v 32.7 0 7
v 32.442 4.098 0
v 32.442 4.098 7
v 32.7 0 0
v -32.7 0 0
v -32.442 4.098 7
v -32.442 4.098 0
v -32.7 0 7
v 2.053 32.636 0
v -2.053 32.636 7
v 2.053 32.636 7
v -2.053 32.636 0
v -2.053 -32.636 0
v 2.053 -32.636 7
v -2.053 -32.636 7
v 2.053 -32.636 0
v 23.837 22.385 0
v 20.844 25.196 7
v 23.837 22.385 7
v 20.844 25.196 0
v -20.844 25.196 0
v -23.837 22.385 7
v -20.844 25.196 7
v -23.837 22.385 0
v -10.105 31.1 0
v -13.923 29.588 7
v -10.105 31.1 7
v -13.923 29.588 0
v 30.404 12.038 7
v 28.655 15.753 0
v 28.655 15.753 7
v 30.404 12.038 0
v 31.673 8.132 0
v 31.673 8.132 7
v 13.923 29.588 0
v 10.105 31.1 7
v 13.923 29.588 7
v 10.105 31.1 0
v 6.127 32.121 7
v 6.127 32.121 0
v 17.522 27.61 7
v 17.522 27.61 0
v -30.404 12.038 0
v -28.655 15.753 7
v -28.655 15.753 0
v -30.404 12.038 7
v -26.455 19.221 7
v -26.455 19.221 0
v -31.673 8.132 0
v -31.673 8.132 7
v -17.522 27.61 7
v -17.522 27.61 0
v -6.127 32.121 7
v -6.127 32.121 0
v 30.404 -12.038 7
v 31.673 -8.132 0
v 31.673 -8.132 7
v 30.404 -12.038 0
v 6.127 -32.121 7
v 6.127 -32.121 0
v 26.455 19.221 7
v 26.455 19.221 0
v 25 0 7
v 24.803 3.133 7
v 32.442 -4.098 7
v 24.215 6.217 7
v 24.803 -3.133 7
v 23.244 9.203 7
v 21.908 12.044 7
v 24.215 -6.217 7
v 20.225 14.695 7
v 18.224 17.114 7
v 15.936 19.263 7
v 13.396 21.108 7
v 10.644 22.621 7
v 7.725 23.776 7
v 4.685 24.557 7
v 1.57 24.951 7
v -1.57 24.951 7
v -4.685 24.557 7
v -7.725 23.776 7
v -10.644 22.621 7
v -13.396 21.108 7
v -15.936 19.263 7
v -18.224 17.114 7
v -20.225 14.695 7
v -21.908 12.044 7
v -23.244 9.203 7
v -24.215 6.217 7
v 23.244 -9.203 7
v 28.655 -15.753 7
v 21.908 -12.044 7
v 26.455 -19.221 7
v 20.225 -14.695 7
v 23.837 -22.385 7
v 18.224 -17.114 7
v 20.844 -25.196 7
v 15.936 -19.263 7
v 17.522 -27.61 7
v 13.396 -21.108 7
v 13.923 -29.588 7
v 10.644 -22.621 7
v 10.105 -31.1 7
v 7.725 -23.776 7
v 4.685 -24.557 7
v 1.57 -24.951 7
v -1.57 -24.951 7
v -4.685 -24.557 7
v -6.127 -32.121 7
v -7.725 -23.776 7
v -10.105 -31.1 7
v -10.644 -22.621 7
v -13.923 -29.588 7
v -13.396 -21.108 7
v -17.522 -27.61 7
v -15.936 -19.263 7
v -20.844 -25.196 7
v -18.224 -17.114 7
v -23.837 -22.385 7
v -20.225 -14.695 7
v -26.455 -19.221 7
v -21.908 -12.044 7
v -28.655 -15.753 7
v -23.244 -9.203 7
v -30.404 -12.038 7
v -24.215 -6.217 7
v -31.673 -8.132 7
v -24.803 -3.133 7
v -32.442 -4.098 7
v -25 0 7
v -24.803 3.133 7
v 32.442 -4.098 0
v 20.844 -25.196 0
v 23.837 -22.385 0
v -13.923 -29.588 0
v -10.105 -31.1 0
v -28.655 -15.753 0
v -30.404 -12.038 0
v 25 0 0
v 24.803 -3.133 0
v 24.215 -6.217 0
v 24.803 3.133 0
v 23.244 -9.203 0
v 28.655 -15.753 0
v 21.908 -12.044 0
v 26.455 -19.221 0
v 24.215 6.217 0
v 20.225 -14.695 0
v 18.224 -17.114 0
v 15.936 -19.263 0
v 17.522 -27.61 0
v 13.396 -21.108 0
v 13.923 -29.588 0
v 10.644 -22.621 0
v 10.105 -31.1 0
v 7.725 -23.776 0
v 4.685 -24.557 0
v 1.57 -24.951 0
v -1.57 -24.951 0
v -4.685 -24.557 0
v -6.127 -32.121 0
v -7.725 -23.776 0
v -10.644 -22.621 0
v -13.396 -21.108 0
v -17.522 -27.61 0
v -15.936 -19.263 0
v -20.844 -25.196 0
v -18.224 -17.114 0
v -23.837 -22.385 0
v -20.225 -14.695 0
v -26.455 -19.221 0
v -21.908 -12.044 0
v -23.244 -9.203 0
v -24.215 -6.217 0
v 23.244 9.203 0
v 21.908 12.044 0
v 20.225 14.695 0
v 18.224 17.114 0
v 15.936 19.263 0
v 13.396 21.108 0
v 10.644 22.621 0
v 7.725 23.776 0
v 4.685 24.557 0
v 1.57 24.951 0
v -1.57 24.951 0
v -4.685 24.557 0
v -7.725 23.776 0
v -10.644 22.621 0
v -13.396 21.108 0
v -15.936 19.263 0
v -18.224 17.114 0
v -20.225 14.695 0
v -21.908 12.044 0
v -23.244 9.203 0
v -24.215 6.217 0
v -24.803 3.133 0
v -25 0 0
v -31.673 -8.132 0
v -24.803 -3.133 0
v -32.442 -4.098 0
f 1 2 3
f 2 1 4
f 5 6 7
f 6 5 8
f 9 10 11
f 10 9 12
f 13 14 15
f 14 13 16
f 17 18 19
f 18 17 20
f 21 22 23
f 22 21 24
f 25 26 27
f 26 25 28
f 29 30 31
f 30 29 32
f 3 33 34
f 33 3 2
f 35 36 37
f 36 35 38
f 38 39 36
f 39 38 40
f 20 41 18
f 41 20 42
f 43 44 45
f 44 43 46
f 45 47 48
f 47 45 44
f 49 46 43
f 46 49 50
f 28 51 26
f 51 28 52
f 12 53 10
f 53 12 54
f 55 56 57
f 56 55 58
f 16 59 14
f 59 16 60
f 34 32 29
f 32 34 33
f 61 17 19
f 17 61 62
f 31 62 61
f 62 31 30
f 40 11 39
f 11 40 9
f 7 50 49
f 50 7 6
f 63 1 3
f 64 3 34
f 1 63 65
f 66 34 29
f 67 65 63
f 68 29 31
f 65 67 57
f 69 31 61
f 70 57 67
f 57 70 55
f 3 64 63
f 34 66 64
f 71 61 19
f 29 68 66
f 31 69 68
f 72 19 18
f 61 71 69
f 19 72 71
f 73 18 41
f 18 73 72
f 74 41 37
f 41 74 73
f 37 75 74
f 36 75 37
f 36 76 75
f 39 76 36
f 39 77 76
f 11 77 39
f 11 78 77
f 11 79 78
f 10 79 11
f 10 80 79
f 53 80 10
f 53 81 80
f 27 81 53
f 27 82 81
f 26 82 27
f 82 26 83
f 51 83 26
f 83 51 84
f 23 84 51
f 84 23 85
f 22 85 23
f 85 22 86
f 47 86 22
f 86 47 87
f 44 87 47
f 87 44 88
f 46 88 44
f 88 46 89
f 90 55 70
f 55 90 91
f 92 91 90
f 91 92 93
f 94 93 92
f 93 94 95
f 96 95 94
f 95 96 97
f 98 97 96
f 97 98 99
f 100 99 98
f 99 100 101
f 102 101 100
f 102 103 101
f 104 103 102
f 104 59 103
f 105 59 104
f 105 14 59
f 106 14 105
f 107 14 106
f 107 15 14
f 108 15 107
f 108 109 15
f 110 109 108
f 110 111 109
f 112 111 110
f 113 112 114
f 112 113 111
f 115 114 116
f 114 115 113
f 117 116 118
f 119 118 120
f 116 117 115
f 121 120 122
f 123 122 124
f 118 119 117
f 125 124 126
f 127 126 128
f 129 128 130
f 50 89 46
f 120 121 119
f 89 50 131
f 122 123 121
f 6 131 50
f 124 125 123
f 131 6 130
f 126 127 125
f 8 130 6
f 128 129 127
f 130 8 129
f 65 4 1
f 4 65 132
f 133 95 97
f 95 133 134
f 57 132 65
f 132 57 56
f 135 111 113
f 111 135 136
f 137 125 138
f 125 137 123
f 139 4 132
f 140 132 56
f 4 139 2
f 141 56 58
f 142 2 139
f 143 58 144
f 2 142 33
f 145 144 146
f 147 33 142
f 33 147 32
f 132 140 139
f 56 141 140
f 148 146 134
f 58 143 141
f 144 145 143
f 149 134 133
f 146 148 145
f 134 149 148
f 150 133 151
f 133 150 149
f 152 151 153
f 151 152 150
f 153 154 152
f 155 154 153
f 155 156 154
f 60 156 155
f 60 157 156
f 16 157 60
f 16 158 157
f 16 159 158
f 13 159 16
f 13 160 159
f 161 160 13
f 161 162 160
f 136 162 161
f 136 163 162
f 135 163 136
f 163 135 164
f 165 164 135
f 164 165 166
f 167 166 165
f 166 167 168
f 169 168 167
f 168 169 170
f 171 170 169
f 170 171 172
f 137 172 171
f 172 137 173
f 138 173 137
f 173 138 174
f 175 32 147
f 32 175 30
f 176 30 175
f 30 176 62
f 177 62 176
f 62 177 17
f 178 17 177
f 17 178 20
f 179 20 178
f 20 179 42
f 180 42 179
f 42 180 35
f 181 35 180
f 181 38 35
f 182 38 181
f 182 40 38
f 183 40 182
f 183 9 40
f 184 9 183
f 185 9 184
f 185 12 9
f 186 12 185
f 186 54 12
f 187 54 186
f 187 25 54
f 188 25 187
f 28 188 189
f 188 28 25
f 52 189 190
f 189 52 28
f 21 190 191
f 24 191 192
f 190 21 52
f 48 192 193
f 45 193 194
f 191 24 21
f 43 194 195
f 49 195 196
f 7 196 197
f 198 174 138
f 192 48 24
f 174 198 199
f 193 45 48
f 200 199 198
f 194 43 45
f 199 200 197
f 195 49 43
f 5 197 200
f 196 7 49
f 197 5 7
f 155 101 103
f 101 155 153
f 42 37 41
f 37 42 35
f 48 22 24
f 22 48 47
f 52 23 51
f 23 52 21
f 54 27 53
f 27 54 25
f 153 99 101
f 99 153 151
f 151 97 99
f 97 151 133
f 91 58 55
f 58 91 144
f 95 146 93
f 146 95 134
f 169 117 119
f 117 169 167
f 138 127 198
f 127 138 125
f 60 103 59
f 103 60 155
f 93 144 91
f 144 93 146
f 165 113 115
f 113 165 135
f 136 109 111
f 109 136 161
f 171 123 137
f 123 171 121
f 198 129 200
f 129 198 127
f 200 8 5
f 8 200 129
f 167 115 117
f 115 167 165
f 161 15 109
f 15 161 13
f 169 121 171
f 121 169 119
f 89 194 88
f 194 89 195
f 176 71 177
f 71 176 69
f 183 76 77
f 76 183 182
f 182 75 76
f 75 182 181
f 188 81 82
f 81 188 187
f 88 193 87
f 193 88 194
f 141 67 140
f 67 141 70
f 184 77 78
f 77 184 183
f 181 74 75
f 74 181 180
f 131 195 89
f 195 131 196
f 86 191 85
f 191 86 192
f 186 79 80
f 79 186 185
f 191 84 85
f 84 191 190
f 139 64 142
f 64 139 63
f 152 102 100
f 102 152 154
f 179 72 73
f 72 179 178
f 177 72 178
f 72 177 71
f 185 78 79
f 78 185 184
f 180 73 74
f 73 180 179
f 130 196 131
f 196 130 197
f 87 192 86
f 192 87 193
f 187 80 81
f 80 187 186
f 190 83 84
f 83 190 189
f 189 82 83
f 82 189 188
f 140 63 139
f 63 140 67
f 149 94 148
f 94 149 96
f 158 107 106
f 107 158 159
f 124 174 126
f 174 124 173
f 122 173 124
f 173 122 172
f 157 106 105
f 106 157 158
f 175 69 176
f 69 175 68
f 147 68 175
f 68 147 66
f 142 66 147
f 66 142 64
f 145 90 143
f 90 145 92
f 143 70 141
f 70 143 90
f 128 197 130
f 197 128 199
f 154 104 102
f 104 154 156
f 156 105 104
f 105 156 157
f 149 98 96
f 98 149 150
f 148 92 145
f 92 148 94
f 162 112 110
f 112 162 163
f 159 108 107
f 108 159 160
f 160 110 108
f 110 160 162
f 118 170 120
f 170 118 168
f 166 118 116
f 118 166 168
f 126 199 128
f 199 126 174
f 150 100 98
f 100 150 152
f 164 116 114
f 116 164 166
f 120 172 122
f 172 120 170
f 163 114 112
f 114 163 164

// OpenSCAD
$fn = 50;


difference() {
	union() {
		translate(v = [0, 0, 0]) {
			rotate(a = [0, 0, 0]) {
				cylinder(h = 7, r = 32.7000000000);
			}
		}
	}
	union() {
		translate(v = [0, 0, 0]) {
			rotate(a = [0, 0, 0]) {
				cylinder(h = 7, r = 25.0000000000);
			}
		}
	}
}
